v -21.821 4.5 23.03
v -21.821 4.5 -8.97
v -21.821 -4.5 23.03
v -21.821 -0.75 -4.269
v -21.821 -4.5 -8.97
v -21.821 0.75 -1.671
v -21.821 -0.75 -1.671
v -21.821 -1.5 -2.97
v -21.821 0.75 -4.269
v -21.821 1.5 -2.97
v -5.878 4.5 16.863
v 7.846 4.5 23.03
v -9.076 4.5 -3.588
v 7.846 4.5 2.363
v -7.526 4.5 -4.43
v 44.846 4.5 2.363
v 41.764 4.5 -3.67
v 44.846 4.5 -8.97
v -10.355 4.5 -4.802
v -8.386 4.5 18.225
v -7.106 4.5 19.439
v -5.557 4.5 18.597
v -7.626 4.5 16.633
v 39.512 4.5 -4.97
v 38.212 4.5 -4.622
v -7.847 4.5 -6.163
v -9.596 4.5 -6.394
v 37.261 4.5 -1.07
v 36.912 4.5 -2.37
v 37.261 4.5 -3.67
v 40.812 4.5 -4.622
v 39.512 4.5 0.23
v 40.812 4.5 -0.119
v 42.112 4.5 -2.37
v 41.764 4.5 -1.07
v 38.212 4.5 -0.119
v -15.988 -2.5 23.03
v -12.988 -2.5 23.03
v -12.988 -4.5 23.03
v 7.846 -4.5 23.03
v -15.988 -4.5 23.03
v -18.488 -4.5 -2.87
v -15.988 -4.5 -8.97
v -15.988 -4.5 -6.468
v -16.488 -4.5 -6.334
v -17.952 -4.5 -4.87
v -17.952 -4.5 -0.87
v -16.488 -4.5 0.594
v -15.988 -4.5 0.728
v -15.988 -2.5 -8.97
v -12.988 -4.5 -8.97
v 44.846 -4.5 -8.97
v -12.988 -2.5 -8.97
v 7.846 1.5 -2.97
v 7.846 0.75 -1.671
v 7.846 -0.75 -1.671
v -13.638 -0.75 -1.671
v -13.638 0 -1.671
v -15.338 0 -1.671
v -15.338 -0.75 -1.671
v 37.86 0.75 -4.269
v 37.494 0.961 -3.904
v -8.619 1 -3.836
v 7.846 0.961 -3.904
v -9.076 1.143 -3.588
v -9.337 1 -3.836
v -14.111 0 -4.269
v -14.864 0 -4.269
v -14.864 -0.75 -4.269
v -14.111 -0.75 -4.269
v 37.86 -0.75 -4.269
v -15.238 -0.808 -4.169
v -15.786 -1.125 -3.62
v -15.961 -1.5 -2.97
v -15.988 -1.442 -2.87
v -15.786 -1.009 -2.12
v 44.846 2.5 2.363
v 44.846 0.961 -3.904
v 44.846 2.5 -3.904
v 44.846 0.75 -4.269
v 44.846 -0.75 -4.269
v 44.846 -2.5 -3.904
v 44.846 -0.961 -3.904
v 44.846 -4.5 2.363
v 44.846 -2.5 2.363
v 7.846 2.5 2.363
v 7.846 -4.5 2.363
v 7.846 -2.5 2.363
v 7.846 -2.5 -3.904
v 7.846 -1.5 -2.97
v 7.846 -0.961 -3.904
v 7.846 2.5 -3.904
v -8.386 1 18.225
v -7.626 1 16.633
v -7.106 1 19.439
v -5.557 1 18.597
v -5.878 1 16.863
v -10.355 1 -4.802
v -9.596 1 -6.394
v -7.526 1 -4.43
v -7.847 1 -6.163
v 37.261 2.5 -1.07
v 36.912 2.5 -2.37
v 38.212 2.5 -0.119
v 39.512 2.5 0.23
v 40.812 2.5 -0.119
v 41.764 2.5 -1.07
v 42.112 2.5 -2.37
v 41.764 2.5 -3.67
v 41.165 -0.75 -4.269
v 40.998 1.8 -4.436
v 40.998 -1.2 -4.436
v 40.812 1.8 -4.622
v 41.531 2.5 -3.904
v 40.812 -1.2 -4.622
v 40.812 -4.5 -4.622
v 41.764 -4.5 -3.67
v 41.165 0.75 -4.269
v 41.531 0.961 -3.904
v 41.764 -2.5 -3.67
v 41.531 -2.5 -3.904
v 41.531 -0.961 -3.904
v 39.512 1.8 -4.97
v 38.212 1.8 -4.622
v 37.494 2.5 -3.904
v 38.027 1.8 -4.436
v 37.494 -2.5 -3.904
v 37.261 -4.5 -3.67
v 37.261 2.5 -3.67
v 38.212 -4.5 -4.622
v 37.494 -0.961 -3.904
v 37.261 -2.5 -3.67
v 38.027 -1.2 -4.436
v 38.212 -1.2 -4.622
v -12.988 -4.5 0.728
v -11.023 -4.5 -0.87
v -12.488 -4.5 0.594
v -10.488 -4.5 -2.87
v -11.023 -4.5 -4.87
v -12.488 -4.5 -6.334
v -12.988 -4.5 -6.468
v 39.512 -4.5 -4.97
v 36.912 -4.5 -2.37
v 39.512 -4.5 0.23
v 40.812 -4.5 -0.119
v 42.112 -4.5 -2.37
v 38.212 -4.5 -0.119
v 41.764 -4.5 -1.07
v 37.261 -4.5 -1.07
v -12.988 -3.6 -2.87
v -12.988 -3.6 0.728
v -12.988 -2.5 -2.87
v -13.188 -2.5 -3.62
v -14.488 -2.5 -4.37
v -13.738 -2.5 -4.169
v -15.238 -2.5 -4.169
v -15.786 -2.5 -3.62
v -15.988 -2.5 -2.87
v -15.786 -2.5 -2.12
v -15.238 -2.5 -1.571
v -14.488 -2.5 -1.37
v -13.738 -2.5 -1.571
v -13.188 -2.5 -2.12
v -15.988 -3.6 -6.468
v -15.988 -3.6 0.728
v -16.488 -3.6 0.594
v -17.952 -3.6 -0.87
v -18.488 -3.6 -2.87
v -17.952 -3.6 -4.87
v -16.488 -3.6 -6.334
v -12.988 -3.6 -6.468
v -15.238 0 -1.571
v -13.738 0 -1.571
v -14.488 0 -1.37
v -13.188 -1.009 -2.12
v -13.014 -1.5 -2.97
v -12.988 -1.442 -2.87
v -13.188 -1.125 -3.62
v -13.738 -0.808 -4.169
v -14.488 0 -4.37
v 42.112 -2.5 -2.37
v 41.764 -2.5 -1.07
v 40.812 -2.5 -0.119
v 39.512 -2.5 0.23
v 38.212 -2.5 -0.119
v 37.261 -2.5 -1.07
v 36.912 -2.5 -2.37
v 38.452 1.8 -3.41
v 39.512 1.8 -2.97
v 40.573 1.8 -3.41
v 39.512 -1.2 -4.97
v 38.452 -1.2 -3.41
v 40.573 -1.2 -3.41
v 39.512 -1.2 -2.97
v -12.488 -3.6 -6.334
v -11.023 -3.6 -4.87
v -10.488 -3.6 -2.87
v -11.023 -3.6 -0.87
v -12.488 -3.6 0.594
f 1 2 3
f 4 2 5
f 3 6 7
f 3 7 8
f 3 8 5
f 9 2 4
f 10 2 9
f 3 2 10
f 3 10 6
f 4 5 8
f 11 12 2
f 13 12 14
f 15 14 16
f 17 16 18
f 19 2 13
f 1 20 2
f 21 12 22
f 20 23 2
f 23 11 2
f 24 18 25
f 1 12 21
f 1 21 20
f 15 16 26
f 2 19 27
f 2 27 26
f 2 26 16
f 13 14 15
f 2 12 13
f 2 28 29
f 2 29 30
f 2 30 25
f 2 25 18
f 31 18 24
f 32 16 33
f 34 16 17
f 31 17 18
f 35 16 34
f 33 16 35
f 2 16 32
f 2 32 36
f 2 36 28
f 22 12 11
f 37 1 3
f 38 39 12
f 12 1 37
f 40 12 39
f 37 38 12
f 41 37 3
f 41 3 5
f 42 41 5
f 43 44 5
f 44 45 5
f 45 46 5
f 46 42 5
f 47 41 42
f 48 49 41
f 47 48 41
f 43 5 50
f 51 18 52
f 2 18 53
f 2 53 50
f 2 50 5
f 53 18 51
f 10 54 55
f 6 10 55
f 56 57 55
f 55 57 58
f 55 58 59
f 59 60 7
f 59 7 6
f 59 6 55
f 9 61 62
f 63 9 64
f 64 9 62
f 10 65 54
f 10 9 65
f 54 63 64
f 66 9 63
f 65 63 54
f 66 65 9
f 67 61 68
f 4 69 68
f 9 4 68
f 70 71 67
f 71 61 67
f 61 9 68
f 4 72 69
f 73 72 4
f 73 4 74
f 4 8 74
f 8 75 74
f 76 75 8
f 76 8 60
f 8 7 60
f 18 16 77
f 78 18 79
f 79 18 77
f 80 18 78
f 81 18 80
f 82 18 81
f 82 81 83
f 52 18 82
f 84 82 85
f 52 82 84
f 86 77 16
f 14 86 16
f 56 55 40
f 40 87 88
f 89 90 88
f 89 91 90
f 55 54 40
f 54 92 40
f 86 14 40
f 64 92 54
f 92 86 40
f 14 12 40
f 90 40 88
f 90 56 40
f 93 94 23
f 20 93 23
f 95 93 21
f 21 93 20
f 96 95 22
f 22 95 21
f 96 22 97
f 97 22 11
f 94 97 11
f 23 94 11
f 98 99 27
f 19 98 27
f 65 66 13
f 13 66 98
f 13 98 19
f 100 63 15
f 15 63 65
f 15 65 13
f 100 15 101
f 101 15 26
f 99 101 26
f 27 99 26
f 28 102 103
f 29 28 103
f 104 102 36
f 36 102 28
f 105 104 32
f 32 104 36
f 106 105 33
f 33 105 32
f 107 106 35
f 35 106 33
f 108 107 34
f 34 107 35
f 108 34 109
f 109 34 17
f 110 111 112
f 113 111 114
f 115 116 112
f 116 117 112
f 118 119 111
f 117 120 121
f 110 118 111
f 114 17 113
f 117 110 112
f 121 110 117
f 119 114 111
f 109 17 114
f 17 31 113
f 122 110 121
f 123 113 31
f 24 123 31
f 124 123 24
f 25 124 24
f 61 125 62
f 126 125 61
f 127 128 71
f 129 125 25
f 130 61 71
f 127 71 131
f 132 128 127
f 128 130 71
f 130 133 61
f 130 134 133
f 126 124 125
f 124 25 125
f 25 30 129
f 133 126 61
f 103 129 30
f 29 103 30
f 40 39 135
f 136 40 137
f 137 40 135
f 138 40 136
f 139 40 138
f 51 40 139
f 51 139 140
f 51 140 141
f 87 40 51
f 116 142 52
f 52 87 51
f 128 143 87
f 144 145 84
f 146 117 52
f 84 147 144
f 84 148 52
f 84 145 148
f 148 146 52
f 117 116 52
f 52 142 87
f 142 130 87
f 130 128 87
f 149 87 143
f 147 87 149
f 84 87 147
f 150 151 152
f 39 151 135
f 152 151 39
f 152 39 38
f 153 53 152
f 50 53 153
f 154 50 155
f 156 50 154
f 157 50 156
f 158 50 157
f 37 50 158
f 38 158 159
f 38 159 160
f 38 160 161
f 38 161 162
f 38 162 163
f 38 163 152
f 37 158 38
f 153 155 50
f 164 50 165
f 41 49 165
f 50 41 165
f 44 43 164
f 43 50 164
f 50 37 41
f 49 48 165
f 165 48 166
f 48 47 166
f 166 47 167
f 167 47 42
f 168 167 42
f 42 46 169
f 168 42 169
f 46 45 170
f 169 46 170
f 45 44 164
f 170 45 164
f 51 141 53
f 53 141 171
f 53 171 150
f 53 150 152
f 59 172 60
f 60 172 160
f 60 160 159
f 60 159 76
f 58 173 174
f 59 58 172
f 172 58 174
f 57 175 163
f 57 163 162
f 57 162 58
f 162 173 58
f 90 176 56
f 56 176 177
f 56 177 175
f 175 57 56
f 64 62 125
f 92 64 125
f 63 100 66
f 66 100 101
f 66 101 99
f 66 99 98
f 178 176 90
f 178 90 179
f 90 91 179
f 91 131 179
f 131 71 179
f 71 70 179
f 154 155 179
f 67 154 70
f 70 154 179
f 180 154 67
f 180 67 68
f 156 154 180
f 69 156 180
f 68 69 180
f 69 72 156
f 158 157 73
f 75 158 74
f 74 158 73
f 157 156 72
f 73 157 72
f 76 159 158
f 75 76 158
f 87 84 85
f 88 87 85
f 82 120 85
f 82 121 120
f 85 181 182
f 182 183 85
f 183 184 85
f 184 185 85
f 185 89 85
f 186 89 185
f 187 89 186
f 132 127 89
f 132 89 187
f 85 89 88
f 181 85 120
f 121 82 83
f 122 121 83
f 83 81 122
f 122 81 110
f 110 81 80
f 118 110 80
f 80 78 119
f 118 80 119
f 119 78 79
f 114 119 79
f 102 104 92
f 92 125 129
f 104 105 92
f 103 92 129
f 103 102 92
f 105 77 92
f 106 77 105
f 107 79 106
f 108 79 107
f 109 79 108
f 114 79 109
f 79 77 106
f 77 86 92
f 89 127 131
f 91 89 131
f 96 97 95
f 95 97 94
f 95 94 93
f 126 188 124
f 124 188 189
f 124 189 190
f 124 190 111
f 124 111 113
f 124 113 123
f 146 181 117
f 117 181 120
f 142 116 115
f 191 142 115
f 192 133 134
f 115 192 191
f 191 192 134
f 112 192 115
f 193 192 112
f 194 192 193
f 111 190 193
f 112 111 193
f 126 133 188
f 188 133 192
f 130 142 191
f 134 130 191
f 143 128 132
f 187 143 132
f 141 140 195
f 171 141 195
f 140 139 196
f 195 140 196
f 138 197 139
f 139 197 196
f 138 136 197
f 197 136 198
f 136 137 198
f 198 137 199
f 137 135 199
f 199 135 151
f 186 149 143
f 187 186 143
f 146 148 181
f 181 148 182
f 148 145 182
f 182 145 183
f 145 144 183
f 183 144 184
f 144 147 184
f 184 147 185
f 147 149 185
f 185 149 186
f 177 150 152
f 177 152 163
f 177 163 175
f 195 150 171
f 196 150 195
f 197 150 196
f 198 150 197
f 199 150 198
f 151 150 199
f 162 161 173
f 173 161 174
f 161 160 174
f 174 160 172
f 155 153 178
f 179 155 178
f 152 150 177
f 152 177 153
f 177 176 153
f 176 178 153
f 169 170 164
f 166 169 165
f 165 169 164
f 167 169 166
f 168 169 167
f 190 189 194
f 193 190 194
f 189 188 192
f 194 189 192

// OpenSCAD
//
// Shapes to subtract
// 

// height in design space (thickness Z in printspace) reduced 12 -> 9
// wire hole reduced from r=1.5 to 1.3mm

nsp = 1.5; // pilot hole for #6 screw
nsh = 4;  // connection screw head recess
hradius = 1.3;

module hole(rad, hg) {
		rotate([0,0,0])
			cylinder(r=rad, h=hg,center=true);
}

module cavity(len,wid,hgt,t,gauge) {
//corner
	translate([len/3,1+wid/2,-1]) cube([len/2,2*wid/3,hgt+4],true);
//slot
	translate([len/3,wid/5,0]) cube([len/2,2+wid/3,2+hgt/3],true);
//tube hole
	  translate([(len/2)-10,t/2-1,-hgt])
      rotate([0,0,90]) 
        cylinder(r=t/2,h=2*hgt,$fn=12);
//wire hole
      translate([-70,1,0])
       rotate([0,90,0]) 
        cylinder(r=gauge/2, h=3*len,$fn=6);
// connection screw recessed head
	  translate([36-len/2,t/2-1.5,(2*hgt)/5])
      rotate([0,0,90]) 
        cylinder(r=nsh,h=3+hgt,$fn=12);
// connection screw pilot hole
	  translate([36-len/2,t/2-1.5,0])
      rotate([0,0,90]) 
        cylinder(r=nsp,h=3+hgt,$fn=12);
// electrical wire cavity
		  translate([36-len/2,t/2+8,1+hgt/3])
      rotate([0,0,90]) 
       cube([wid+2,3,3],true);
}
	// MOUNTING Holes
	module mholes(ht) {
	 translate([114.26,0,-3])
	   hole(nsp, ht);
 	 translate([112,23,-3])
 	   hole(nsp, ht);

//   translate([98.61, 0, -3])
//	   hole( hradius, thickplus);
//   translate([96.62, 19.23, -3])
//	   hole( nsp, ht);

//   translate([80.7, 15.85, -3])
//	   hole( nsp, ht);
   }


module compress(len,wid,hgt,t,gauge) {


   difference() {
		translate([12,11,0]) cube([len-(len/3),wid,hgt],true);
		cavity(len,wid,hgt,t,gauge);
	}
	  translate([(len/2)-10,-0.5,-hgt/5])
      rotate([0,0,90]) 
        cylinder(r=gauge/2,h=hgt/3,$fn=8);

}
module piece() {
alpha = 7;
difference() {
translate([0,-4,0])
  rotate([0,0,alpha])
    compress(100,32,9,5.2,3);

//    translate([100,0,-1])
    translate([105,10,-1])
     rotate([0,0,180-alpha/2])
       mholes(6);
}
}
rotate([90,7,0]) 
    piece();
